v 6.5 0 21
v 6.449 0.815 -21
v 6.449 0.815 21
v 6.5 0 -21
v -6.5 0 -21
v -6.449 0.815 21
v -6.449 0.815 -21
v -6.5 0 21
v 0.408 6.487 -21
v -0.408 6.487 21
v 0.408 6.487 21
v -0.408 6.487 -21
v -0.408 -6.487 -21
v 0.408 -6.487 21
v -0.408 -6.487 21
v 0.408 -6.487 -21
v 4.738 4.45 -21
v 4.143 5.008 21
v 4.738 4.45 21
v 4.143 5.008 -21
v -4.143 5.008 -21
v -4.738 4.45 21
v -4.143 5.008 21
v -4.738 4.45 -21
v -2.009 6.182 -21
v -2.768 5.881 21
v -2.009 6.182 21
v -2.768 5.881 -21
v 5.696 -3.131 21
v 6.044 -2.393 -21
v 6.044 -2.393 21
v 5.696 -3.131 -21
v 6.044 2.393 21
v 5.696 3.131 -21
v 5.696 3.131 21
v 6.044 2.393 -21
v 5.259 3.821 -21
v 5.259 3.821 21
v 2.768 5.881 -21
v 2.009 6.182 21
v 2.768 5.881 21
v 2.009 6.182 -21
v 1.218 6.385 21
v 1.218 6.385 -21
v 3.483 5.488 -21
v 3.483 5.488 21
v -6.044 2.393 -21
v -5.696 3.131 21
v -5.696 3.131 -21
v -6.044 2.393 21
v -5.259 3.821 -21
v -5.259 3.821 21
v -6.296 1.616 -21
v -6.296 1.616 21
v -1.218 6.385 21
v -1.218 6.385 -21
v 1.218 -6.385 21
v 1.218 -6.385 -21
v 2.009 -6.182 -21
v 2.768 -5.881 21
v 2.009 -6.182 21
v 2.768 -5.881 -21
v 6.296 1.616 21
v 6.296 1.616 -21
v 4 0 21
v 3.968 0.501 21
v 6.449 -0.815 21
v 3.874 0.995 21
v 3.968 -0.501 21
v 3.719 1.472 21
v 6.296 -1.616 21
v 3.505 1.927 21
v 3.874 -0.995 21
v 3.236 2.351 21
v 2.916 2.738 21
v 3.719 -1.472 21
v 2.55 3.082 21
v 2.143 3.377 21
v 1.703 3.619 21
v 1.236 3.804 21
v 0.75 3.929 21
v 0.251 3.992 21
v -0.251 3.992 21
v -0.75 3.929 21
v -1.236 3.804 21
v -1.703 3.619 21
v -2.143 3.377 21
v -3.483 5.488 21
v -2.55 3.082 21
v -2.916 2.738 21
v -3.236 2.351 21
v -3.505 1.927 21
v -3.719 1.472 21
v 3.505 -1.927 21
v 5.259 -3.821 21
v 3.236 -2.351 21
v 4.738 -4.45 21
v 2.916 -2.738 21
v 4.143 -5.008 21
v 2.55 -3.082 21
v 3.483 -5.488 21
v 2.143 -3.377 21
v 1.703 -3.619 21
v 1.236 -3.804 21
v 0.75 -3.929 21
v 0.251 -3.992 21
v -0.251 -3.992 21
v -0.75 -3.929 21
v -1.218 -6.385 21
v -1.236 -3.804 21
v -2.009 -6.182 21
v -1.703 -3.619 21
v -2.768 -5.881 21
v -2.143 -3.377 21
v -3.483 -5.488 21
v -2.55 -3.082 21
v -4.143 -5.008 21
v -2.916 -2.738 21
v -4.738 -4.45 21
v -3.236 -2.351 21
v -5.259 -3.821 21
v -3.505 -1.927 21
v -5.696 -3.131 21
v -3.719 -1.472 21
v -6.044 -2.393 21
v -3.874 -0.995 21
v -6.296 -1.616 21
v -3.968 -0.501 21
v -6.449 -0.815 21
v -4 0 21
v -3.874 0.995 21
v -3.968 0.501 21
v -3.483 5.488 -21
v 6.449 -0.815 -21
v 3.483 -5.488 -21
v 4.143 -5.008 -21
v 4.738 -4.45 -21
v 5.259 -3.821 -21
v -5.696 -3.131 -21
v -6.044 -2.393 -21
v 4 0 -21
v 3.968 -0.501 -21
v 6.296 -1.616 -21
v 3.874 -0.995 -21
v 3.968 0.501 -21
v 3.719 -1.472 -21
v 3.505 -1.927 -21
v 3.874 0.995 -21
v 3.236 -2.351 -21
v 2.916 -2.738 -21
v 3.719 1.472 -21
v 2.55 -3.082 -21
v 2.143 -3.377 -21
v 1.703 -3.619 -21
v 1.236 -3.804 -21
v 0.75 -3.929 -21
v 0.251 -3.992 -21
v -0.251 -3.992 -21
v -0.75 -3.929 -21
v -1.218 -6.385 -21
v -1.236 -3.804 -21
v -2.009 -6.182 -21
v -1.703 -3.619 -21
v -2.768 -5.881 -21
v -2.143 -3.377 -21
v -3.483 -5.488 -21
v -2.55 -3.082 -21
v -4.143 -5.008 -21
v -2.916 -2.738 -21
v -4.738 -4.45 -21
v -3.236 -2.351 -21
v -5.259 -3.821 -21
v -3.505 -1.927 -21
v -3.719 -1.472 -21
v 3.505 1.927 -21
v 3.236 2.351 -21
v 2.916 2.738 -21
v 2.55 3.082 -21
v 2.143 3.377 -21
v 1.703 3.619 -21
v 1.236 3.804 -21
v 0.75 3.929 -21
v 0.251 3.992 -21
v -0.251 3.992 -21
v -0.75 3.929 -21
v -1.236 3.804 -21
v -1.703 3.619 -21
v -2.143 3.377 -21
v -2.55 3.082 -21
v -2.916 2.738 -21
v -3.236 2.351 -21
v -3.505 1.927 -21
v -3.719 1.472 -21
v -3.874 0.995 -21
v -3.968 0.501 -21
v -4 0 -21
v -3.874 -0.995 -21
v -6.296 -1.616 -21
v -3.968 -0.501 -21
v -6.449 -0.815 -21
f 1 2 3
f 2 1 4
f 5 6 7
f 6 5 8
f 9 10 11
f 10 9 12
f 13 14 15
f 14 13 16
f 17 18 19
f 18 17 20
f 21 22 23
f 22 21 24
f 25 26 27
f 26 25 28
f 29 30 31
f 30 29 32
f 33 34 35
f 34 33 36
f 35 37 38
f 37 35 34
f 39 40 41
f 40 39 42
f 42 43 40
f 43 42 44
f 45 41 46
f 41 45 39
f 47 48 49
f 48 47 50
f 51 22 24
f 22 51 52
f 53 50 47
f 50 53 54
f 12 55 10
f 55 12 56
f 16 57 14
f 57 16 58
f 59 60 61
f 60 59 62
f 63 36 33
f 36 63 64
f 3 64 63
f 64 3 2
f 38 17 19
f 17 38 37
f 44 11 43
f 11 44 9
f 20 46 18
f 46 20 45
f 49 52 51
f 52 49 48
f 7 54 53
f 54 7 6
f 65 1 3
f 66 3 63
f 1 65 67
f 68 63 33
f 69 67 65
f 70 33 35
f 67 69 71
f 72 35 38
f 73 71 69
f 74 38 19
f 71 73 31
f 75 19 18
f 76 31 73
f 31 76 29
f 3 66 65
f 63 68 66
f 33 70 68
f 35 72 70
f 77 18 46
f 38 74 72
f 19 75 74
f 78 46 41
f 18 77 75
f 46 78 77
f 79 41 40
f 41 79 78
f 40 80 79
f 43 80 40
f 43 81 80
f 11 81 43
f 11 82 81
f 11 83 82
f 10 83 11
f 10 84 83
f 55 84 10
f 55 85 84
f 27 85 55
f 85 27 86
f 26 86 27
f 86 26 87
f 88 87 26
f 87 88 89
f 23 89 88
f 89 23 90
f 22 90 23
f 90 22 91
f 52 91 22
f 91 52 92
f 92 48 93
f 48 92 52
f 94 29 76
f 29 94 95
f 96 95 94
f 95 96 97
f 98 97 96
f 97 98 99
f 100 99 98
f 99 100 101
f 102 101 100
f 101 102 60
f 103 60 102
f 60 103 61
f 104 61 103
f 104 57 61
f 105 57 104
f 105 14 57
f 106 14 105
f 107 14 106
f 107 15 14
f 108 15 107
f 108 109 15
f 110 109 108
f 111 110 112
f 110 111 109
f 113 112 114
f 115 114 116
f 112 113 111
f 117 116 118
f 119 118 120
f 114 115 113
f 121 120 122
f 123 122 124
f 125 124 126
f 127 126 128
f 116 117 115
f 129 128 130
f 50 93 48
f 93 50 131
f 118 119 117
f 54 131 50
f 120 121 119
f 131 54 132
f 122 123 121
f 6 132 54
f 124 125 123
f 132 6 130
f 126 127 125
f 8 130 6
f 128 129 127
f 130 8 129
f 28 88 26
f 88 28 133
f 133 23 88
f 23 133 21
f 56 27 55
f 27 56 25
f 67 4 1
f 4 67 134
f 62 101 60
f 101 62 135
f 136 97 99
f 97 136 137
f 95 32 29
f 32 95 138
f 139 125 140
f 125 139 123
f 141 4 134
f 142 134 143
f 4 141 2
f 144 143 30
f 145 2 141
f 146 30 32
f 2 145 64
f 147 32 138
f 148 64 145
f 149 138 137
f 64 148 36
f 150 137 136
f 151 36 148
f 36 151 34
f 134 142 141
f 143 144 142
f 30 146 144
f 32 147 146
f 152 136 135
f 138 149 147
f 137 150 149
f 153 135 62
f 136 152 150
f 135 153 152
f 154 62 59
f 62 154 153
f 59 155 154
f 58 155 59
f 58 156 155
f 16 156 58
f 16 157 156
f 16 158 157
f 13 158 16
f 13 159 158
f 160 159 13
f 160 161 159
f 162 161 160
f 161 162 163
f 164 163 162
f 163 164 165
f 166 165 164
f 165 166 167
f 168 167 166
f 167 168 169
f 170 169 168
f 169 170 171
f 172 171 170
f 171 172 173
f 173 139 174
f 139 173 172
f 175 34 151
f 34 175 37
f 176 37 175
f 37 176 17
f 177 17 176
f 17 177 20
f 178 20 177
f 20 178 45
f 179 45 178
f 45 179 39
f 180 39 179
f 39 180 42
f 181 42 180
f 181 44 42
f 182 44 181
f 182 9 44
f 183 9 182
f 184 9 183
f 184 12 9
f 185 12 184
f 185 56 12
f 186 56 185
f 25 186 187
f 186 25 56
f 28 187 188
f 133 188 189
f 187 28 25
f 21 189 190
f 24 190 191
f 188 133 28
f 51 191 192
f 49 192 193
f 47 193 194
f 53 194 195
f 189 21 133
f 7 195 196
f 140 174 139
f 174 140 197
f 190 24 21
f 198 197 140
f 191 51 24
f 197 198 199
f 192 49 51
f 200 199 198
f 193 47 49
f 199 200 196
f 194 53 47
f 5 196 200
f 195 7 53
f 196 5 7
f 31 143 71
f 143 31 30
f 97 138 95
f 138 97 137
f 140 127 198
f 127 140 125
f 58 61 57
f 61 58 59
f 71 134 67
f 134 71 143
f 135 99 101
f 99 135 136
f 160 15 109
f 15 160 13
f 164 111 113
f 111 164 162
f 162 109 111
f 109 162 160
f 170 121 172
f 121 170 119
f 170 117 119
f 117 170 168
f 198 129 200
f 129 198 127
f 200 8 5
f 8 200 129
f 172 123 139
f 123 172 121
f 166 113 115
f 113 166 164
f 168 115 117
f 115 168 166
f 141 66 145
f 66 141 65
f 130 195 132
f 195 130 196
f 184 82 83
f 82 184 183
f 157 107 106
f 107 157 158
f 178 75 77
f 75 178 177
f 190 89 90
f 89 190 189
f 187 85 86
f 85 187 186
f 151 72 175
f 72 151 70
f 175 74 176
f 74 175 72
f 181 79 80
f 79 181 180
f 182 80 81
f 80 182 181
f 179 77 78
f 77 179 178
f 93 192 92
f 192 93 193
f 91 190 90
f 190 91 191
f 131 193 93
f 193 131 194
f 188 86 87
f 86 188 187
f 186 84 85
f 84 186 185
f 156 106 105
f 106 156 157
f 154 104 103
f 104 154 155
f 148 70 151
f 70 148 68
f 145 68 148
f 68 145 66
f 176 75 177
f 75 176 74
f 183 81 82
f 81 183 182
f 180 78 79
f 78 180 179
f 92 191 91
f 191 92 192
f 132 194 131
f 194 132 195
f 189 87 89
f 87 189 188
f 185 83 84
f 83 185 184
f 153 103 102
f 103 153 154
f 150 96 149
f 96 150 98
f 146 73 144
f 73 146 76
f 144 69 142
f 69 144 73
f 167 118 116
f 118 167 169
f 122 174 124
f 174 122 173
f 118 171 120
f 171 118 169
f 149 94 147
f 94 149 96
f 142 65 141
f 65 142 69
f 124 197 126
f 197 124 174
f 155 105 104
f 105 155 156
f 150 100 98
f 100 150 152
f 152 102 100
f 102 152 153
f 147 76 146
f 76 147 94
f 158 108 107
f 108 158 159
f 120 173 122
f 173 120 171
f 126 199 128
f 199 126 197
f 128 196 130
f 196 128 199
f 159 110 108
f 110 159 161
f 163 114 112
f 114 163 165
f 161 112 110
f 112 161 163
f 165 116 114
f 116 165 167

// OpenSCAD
$fn = 50;


difference() {
	union() {
		translate(v = [0, 0, -21.0000000000]) {
			cylinder(h = 42, r = 6.5000000000);
		}
	}
	union() {
		translate(v = [0, 0, -100.0000000000]) {
			cylinder(h = 200, r = 4);
		}
	}
}
